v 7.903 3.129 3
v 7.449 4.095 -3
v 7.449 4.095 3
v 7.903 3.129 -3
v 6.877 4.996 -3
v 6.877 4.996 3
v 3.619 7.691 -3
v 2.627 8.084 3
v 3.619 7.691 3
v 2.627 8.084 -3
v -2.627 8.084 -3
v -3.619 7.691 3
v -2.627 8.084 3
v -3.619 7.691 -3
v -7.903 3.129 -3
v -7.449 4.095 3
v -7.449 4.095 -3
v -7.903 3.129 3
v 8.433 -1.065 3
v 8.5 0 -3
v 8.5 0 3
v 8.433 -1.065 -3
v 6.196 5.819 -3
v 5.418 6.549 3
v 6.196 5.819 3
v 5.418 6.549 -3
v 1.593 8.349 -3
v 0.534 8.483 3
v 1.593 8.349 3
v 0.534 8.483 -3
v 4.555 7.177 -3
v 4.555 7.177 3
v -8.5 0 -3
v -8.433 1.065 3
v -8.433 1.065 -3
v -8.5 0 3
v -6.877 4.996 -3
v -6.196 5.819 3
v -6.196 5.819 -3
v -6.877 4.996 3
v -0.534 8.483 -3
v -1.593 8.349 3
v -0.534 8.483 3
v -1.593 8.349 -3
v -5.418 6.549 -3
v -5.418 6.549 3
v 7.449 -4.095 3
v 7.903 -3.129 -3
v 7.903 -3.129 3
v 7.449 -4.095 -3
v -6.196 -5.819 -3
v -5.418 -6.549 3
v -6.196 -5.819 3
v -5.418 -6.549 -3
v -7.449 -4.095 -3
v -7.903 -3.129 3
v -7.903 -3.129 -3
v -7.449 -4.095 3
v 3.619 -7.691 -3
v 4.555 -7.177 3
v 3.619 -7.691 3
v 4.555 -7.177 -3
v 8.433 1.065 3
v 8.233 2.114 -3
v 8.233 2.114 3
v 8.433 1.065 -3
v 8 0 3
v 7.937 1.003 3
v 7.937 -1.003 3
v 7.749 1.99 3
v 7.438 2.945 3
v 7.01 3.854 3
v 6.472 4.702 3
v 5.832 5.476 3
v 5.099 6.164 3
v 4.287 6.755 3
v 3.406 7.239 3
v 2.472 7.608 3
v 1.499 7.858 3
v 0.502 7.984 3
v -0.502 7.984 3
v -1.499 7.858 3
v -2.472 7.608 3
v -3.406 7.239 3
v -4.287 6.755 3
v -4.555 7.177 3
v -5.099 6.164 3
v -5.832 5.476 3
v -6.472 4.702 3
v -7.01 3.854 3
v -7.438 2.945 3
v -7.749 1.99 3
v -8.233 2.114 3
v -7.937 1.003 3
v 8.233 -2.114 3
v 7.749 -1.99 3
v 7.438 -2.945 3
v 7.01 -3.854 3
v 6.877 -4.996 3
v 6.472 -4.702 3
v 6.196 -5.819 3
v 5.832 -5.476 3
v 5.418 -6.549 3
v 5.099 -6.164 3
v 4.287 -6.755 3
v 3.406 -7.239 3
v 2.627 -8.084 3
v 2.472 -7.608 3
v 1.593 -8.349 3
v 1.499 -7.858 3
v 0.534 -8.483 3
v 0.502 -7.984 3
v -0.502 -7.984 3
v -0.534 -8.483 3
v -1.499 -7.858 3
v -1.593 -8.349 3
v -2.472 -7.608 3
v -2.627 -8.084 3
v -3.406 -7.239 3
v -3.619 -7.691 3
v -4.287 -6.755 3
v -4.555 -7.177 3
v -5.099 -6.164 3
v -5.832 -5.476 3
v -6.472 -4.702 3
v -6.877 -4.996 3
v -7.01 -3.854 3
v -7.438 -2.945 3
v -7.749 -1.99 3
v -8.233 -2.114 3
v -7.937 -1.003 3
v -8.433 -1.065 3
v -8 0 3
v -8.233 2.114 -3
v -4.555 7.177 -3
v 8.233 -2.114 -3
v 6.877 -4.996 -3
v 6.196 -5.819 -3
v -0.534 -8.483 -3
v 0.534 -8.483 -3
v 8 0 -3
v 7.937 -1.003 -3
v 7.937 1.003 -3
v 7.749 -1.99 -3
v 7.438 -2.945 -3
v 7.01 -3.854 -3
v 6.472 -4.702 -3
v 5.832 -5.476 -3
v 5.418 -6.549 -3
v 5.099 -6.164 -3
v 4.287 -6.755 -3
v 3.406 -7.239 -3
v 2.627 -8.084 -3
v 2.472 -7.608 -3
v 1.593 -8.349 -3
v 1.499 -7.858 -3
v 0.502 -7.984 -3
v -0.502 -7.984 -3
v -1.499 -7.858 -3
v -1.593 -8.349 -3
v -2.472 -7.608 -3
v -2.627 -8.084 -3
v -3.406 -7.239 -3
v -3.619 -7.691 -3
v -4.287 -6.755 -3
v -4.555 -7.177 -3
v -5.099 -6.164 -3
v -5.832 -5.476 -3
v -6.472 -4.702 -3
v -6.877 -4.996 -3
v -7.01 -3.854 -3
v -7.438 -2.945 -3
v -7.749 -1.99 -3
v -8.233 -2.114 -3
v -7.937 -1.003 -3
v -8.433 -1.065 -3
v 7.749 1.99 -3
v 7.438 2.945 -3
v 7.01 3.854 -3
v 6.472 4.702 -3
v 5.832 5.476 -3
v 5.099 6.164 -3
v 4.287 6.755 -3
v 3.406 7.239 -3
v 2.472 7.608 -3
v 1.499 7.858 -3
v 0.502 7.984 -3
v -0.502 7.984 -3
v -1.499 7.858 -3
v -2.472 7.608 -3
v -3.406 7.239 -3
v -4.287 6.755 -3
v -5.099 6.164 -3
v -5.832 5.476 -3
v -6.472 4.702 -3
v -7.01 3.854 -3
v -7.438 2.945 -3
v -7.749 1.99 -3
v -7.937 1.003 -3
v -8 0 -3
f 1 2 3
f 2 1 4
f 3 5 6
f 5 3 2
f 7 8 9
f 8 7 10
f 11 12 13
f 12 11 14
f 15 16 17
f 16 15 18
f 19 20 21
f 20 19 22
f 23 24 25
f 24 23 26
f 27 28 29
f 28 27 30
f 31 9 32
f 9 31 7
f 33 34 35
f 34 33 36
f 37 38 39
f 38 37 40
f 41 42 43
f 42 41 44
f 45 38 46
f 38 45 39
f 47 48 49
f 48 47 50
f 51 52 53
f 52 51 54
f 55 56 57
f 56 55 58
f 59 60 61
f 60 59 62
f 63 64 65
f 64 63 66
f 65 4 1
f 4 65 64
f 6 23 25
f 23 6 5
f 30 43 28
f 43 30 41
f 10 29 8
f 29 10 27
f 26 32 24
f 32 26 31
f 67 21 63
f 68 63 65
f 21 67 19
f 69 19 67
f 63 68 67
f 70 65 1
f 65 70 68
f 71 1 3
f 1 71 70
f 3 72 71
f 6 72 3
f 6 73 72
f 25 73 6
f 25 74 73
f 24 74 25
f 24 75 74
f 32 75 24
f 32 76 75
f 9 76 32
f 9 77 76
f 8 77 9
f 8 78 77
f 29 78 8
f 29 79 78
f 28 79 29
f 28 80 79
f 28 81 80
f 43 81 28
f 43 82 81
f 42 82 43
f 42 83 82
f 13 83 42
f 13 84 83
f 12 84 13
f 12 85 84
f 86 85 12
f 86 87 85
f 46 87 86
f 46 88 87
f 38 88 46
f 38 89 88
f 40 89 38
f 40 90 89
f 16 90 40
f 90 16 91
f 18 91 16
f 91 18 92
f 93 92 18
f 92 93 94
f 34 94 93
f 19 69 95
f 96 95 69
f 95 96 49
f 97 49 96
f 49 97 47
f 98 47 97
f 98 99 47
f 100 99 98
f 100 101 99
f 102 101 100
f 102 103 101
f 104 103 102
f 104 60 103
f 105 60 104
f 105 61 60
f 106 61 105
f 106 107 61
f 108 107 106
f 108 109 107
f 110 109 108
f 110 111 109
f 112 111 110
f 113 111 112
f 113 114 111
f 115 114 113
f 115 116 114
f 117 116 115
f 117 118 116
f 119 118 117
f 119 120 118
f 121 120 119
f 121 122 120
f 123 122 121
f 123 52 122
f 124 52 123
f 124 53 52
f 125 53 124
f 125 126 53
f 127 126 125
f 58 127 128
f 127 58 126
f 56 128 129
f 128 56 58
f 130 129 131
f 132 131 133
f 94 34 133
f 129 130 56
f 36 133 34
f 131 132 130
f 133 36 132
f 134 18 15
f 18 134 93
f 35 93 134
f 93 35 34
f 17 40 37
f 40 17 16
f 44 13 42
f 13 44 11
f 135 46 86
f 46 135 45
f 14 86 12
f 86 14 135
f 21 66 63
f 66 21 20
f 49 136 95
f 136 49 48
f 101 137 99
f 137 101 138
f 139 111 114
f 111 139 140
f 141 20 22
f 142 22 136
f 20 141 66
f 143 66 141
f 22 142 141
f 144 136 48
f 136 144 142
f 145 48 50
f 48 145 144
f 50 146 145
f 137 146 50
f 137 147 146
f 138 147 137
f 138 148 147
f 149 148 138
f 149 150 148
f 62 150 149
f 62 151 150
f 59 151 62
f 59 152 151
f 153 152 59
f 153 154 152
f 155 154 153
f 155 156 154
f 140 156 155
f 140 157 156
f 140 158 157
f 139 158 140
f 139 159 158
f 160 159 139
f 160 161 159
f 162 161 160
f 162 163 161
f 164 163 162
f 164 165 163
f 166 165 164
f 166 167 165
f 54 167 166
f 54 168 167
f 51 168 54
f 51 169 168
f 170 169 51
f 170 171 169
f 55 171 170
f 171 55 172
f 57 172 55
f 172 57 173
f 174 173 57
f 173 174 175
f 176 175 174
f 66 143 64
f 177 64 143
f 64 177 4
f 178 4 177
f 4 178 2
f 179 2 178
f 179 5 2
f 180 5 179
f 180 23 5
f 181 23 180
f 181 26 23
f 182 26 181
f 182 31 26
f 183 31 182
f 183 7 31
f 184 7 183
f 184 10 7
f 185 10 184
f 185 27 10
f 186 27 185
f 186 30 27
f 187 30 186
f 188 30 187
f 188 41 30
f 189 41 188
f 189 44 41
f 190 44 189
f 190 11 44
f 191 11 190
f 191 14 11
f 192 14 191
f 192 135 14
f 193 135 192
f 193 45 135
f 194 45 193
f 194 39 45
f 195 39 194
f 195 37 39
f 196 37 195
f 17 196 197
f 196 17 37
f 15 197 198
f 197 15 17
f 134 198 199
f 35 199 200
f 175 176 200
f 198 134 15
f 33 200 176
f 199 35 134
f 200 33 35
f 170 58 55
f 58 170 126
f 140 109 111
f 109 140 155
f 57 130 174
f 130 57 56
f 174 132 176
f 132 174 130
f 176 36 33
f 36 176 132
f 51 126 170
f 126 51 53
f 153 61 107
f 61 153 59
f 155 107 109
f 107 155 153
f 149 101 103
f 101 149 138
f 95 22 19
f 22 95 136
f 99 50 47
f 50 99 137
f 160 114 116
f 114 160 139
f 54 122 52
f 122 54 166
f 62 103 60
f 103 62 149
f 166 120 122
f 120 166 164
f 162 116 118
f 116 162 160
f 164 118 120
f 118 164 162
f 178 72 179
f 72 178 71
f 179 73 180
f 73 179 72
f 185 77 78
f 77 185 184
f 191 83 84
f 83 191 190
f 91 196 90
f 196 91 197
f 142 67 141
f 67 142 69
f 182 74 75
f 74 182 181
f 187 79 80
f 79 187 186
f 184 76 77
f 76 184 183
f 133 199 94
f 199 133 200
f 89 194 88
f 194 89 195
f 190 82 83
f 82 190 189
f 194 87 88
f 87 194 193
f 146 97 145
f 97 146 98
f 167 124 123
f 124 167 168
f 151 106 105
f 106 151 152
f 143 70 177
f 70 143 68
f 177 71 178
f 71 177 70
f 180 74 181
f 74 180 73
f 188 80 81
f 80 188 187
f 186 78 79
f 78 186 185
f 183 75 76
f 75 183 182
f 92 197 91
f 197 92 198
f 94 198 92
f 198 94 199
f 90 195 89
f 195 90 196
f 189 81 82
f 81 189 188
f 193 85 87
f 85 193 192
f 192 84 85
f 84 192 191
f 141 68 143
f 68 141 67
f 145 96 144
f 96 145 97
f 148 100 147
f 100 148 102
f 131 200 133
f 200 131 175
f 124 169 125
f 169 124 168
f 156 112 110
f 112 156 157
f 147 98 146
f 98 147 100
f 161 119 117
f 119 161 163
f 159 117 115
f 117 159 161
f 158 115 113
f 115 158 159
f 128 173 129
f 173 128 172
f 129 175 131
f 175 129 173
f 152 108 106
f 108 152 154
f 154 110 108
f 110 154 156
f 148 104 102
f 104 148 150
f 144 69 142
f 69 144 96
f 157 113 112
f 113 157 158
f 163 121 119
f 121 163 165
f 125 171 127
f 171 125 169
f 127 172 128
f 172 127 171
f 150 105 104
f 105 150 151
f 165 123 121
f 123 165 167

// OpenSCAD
$fn = 50;


difference() {
	union() {
		translate(v = [0, 0, -3.0000000000]) {
			cylinder(h = 6, r = 8.5000000000);
		}
	}
	union() {
		translate(v = [0, 0, -100.0000000000]) {
			cylinder(h = 200, r = 8);
		}
	}
}
